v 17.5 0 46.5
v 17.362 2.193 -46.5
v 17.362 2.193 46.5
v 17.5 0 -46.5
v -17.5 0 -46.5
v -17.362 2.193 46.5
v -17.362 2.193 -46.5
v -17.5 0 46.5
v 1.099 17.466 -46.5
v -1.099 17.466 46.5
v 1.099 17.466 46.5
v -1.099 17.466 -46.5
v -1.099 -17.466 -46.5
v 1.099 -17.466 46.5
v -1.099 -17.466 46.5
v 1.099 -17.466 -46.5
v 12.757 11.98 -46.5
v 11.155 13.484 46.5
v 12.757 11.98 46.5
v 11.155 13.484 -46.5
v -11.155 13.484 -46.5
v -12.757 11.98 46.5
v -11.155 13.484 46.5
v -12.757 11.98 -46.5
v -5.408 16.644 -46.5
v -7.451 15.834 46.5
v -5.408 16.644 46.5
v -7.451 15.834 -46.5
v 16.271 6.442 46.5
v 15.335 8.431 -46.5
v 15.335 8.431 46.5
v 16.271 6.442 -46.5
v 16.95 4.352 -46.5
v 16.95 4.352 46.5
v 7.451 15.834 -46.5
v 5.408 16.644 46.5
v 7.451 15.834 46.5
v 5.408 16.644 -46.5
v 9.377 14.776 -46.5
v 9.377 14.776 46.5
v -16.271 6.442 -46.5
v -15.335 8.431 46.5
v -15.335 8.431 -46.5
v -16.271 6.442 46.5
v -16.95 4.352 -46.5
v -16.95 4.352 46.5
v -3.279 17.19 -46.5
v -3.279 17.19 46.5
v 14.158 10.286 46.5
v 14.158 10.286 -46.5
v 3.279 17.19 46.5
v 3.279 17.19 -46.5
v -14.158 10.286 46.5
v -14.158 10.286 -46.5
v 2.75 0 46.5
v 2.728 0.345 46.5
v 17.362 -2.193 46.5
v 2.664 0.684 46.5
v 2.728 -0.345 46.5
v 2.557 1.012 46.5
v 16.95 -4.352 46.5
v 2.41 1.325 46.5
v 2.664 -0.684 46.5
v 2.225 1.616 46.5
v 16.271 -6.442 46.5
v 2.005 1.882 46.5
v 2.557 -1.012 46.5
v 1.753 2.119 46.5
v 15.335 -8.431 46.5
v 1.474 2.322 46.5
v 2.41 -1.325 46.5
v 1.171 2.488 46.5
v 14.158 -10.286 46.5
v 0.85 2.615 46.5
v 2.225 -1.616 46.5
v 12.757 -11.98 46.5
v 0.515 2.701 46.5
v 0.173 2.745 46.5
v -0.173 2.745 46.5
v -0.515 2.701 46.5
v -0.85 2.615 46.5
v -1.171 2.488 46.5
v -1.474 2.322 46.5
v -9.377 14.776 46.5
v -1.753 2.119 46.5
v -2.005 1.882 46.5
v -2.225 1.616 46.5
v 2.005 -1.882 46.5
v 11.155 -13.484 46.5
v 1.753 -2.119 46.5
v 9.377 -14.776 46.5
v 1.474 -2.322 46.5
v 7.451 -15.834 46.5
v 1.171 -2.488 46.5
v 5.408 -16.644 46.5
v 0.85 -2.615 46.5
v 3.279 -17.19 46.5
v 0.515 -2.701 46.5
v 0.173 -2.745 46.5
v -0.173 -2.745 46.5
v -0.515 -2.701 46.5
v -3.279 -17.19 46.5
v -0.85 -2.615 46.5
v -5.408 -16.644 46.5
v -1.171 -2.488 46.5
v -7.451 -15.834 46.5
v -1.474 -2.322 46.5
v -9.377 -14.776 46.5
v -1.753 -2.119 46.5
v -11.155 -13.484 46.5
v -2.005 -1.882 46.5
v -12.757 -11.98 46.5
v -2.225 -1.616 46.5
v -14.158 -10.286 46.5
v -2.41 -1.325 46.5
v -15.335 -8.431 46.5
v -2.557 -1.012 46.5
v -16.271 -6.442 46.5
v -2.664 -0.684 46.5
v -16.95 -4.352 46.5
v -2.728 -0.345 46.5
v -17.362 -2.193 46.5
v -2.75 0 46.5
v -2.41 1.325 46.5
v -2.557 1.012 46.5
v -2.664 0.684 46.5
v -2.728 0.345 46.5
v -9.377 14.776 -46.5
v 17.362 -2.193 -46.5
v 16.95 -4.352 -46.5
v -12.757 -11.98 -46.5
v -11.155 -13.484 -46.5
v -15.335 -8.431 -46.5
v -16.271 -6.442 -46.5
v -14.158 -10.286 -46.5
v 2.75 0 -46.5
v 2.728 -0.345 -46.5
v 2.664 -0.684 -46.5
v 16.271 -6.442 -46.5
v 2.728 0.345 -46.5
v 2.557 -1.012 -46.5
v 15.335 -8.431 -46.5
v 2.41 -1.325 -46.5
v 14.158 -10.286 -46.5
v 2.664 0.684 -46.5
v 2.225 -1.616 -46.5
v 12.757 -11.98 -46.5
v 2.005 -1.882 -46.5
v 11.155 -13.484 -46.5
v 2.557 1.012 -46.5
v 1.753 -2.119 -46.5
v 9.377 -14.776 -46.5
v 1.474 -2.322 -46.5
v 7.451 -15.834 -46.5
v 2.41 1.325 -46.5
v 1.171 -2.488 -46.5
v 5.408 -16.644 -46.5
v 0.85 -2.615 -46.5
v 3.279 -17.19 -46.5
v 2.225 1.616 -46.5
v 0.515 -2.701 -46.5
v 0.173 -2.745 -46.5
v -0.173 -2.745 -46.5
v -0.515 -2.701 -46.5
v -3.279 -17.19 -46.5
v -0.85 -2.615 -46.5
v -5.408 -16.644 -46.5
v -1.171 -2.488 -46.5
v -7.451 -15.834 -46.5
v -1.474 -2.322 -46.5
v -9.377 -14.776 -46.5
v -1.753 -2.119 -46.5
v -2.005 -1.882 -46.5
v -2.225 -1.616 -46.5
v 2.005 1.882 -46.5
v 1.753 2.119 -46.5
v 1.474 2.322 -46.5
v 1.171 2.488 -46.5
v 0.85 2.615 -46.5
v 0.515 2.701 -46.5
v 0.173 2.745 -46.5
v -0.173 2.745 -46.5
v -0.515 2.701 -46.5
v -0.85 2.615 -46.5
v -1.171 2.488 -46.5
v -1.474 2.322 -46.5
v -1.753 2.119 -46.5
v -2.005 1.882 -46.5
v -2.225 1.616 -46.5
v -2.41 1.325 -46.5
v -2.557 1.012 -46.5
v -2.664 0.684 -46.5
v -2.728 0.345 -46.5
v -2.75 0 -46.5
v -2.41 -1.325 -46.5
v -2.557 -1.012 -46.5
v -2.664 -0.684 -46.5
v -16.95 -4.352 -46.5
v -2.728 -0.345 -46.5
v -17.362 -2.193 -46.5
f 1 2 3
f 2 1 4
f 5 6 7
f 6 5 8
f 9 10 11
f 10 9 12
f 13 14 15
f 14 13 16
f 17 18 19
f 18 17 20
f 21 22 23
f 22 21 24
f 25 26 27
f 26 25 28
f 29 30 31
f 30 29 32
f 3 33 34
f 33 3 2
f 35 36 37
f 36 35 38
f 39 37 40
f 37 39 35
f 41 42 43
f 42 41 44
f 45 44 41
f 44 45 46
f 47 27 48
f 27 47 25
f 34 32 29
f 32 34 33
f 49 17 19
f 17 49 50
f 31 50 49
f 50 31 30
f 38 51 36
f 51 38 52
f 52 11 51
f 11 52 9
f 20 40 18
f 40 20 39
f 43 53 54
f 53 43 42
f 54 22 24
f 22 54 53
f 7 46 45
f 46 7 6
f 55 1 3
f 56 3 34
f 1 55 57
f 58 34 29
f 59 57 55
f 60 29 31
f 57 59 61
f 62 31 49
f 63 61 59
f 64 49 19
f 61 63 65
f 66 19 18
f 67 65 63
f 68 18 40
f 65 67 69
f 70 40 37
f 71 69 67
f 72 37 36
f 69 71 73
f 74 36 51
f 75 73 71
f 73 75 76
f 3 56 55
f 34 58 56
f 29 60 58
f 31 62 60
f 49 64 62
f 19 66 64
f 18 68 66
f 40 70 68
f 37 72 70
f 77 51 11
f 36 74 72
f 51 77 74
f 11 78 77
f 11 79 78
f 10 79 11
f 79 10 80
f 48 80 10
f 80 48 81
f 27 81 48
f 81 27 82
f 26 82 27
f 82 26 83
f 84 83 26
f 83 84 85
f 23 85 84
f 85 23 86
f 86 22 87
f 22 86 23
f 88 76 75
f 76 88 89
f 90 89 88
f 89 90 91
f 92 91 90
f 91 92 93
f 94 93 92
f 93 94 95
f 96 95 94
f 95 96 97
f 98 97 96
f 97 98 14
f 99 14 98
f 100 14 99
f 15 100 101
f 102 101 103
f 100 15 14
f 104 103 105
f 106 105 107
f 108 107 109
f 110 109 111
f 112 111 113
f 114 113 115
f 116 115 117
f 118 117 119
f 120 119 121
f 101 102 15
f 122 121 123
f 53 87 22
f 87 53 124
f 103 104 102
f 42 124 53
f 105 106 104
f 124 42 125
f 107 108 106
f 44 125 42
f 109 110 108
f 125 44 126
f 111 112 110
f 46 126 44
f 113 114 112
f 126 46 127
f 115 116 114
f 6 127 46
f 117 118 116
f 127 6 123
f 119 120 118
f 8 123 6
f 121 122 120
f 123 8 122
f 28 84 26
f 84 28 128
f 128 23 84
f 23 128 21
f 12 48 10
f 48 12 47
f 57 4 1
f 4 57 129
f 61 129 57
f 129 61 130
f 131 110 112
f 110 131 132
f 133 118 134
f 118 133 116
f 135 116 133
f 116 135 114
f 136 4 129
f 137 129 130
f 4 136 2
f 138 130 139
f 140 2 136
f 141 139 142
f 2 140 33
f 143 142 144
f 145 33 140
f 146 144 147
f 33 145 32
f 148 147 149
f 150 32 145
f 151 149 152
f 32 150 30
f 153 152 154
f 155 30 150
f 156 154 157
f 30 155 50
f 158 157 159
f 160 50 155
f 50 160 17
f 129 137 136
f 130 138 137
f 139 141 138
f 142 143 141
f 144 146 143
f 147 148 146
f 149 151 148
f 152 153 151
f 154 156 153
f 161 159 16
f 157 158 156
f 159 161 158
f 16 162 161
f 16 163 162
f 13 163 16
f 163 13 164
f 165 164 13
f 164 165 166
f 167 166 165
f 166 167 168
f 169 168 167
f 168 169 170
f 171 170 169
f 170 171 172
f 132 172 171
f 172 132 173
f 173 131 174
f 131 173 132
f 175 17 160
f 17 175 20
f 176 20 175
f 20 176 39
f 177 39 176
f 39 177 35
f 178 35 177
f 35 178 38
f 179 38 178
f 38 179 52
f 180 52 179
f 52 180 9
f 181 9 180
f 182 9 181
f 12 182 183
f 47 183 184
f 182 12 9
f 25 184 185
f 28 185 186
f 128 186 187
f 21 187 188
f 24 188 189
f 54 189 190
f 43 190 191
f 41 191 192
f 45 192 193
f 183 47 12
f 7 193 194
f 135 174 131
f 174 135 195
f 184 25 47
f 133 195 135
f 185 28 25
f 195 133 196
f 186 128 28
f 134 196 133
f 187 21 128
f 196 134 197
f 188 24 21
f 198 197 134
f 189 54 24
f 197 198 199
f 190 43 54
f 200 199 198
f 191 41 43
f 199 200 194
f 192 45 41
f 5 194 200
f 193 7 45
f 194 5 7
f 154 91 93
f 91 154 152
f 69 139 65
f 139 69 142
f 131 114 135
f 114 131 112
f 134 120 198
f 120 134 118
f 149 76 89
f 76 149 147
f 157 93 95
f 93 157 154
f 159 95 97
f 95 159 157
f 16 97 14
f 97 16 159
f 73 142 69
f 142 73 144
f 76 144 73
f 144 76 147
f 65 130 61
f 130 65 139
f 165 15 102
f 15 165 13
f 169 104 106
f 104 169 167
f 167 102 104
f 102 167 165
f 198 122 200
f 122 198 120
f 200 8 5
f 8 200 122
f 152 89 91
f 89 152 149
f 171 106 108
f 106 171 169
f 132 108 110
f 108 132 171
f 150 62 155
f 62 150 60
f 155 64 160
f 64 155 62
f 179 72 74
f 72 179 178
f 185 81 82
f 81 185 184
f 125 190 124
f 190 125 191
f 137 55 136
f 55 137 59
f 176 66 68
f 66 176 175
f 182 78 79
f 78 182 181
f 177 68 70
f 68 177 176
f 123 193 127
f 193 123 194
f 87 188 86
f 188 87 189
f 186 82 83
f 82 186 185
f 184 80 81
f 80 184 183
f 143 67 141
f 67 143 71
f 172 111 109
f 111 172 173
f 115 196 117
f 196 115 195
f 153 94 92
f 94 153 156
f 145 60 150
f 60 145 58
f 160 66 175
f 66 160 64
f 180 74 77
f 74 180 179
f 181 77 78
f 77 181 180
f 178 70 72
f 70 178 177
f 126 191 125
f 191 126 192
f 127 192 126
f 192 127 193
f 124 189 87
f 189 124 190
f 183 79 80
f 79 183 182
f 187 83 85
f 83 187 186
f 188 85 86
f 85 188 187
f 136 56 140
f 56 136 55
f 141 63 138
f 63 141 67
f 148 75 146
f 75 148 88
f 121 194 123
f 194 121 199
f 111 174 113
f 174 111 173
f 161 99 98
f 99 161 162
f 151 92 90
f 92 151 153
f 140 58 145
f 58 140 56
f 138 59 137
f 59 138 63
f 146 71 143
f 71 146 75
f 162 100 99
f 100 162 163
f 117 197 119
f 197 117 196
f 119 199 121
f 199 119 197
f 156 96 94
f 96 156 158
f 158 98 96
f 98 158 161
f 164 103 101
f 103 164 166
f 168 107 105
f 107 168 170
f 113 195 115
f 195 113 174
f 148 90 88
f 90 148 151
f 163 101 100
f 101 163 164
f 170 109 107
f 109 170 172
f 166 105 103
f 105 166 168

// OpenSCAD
$fn = 50;


difference() {
	union() {
		translate(v = [0, 0, -46.5000000000]) {
			cylinder(h = 93, r = 17.5000000000);
		}
	}
	union() {
		translate(v = [0, 0, -100.0000000000]) {
			cylinder(h = 200, r = 2.7500000000);
		}
	}
}
